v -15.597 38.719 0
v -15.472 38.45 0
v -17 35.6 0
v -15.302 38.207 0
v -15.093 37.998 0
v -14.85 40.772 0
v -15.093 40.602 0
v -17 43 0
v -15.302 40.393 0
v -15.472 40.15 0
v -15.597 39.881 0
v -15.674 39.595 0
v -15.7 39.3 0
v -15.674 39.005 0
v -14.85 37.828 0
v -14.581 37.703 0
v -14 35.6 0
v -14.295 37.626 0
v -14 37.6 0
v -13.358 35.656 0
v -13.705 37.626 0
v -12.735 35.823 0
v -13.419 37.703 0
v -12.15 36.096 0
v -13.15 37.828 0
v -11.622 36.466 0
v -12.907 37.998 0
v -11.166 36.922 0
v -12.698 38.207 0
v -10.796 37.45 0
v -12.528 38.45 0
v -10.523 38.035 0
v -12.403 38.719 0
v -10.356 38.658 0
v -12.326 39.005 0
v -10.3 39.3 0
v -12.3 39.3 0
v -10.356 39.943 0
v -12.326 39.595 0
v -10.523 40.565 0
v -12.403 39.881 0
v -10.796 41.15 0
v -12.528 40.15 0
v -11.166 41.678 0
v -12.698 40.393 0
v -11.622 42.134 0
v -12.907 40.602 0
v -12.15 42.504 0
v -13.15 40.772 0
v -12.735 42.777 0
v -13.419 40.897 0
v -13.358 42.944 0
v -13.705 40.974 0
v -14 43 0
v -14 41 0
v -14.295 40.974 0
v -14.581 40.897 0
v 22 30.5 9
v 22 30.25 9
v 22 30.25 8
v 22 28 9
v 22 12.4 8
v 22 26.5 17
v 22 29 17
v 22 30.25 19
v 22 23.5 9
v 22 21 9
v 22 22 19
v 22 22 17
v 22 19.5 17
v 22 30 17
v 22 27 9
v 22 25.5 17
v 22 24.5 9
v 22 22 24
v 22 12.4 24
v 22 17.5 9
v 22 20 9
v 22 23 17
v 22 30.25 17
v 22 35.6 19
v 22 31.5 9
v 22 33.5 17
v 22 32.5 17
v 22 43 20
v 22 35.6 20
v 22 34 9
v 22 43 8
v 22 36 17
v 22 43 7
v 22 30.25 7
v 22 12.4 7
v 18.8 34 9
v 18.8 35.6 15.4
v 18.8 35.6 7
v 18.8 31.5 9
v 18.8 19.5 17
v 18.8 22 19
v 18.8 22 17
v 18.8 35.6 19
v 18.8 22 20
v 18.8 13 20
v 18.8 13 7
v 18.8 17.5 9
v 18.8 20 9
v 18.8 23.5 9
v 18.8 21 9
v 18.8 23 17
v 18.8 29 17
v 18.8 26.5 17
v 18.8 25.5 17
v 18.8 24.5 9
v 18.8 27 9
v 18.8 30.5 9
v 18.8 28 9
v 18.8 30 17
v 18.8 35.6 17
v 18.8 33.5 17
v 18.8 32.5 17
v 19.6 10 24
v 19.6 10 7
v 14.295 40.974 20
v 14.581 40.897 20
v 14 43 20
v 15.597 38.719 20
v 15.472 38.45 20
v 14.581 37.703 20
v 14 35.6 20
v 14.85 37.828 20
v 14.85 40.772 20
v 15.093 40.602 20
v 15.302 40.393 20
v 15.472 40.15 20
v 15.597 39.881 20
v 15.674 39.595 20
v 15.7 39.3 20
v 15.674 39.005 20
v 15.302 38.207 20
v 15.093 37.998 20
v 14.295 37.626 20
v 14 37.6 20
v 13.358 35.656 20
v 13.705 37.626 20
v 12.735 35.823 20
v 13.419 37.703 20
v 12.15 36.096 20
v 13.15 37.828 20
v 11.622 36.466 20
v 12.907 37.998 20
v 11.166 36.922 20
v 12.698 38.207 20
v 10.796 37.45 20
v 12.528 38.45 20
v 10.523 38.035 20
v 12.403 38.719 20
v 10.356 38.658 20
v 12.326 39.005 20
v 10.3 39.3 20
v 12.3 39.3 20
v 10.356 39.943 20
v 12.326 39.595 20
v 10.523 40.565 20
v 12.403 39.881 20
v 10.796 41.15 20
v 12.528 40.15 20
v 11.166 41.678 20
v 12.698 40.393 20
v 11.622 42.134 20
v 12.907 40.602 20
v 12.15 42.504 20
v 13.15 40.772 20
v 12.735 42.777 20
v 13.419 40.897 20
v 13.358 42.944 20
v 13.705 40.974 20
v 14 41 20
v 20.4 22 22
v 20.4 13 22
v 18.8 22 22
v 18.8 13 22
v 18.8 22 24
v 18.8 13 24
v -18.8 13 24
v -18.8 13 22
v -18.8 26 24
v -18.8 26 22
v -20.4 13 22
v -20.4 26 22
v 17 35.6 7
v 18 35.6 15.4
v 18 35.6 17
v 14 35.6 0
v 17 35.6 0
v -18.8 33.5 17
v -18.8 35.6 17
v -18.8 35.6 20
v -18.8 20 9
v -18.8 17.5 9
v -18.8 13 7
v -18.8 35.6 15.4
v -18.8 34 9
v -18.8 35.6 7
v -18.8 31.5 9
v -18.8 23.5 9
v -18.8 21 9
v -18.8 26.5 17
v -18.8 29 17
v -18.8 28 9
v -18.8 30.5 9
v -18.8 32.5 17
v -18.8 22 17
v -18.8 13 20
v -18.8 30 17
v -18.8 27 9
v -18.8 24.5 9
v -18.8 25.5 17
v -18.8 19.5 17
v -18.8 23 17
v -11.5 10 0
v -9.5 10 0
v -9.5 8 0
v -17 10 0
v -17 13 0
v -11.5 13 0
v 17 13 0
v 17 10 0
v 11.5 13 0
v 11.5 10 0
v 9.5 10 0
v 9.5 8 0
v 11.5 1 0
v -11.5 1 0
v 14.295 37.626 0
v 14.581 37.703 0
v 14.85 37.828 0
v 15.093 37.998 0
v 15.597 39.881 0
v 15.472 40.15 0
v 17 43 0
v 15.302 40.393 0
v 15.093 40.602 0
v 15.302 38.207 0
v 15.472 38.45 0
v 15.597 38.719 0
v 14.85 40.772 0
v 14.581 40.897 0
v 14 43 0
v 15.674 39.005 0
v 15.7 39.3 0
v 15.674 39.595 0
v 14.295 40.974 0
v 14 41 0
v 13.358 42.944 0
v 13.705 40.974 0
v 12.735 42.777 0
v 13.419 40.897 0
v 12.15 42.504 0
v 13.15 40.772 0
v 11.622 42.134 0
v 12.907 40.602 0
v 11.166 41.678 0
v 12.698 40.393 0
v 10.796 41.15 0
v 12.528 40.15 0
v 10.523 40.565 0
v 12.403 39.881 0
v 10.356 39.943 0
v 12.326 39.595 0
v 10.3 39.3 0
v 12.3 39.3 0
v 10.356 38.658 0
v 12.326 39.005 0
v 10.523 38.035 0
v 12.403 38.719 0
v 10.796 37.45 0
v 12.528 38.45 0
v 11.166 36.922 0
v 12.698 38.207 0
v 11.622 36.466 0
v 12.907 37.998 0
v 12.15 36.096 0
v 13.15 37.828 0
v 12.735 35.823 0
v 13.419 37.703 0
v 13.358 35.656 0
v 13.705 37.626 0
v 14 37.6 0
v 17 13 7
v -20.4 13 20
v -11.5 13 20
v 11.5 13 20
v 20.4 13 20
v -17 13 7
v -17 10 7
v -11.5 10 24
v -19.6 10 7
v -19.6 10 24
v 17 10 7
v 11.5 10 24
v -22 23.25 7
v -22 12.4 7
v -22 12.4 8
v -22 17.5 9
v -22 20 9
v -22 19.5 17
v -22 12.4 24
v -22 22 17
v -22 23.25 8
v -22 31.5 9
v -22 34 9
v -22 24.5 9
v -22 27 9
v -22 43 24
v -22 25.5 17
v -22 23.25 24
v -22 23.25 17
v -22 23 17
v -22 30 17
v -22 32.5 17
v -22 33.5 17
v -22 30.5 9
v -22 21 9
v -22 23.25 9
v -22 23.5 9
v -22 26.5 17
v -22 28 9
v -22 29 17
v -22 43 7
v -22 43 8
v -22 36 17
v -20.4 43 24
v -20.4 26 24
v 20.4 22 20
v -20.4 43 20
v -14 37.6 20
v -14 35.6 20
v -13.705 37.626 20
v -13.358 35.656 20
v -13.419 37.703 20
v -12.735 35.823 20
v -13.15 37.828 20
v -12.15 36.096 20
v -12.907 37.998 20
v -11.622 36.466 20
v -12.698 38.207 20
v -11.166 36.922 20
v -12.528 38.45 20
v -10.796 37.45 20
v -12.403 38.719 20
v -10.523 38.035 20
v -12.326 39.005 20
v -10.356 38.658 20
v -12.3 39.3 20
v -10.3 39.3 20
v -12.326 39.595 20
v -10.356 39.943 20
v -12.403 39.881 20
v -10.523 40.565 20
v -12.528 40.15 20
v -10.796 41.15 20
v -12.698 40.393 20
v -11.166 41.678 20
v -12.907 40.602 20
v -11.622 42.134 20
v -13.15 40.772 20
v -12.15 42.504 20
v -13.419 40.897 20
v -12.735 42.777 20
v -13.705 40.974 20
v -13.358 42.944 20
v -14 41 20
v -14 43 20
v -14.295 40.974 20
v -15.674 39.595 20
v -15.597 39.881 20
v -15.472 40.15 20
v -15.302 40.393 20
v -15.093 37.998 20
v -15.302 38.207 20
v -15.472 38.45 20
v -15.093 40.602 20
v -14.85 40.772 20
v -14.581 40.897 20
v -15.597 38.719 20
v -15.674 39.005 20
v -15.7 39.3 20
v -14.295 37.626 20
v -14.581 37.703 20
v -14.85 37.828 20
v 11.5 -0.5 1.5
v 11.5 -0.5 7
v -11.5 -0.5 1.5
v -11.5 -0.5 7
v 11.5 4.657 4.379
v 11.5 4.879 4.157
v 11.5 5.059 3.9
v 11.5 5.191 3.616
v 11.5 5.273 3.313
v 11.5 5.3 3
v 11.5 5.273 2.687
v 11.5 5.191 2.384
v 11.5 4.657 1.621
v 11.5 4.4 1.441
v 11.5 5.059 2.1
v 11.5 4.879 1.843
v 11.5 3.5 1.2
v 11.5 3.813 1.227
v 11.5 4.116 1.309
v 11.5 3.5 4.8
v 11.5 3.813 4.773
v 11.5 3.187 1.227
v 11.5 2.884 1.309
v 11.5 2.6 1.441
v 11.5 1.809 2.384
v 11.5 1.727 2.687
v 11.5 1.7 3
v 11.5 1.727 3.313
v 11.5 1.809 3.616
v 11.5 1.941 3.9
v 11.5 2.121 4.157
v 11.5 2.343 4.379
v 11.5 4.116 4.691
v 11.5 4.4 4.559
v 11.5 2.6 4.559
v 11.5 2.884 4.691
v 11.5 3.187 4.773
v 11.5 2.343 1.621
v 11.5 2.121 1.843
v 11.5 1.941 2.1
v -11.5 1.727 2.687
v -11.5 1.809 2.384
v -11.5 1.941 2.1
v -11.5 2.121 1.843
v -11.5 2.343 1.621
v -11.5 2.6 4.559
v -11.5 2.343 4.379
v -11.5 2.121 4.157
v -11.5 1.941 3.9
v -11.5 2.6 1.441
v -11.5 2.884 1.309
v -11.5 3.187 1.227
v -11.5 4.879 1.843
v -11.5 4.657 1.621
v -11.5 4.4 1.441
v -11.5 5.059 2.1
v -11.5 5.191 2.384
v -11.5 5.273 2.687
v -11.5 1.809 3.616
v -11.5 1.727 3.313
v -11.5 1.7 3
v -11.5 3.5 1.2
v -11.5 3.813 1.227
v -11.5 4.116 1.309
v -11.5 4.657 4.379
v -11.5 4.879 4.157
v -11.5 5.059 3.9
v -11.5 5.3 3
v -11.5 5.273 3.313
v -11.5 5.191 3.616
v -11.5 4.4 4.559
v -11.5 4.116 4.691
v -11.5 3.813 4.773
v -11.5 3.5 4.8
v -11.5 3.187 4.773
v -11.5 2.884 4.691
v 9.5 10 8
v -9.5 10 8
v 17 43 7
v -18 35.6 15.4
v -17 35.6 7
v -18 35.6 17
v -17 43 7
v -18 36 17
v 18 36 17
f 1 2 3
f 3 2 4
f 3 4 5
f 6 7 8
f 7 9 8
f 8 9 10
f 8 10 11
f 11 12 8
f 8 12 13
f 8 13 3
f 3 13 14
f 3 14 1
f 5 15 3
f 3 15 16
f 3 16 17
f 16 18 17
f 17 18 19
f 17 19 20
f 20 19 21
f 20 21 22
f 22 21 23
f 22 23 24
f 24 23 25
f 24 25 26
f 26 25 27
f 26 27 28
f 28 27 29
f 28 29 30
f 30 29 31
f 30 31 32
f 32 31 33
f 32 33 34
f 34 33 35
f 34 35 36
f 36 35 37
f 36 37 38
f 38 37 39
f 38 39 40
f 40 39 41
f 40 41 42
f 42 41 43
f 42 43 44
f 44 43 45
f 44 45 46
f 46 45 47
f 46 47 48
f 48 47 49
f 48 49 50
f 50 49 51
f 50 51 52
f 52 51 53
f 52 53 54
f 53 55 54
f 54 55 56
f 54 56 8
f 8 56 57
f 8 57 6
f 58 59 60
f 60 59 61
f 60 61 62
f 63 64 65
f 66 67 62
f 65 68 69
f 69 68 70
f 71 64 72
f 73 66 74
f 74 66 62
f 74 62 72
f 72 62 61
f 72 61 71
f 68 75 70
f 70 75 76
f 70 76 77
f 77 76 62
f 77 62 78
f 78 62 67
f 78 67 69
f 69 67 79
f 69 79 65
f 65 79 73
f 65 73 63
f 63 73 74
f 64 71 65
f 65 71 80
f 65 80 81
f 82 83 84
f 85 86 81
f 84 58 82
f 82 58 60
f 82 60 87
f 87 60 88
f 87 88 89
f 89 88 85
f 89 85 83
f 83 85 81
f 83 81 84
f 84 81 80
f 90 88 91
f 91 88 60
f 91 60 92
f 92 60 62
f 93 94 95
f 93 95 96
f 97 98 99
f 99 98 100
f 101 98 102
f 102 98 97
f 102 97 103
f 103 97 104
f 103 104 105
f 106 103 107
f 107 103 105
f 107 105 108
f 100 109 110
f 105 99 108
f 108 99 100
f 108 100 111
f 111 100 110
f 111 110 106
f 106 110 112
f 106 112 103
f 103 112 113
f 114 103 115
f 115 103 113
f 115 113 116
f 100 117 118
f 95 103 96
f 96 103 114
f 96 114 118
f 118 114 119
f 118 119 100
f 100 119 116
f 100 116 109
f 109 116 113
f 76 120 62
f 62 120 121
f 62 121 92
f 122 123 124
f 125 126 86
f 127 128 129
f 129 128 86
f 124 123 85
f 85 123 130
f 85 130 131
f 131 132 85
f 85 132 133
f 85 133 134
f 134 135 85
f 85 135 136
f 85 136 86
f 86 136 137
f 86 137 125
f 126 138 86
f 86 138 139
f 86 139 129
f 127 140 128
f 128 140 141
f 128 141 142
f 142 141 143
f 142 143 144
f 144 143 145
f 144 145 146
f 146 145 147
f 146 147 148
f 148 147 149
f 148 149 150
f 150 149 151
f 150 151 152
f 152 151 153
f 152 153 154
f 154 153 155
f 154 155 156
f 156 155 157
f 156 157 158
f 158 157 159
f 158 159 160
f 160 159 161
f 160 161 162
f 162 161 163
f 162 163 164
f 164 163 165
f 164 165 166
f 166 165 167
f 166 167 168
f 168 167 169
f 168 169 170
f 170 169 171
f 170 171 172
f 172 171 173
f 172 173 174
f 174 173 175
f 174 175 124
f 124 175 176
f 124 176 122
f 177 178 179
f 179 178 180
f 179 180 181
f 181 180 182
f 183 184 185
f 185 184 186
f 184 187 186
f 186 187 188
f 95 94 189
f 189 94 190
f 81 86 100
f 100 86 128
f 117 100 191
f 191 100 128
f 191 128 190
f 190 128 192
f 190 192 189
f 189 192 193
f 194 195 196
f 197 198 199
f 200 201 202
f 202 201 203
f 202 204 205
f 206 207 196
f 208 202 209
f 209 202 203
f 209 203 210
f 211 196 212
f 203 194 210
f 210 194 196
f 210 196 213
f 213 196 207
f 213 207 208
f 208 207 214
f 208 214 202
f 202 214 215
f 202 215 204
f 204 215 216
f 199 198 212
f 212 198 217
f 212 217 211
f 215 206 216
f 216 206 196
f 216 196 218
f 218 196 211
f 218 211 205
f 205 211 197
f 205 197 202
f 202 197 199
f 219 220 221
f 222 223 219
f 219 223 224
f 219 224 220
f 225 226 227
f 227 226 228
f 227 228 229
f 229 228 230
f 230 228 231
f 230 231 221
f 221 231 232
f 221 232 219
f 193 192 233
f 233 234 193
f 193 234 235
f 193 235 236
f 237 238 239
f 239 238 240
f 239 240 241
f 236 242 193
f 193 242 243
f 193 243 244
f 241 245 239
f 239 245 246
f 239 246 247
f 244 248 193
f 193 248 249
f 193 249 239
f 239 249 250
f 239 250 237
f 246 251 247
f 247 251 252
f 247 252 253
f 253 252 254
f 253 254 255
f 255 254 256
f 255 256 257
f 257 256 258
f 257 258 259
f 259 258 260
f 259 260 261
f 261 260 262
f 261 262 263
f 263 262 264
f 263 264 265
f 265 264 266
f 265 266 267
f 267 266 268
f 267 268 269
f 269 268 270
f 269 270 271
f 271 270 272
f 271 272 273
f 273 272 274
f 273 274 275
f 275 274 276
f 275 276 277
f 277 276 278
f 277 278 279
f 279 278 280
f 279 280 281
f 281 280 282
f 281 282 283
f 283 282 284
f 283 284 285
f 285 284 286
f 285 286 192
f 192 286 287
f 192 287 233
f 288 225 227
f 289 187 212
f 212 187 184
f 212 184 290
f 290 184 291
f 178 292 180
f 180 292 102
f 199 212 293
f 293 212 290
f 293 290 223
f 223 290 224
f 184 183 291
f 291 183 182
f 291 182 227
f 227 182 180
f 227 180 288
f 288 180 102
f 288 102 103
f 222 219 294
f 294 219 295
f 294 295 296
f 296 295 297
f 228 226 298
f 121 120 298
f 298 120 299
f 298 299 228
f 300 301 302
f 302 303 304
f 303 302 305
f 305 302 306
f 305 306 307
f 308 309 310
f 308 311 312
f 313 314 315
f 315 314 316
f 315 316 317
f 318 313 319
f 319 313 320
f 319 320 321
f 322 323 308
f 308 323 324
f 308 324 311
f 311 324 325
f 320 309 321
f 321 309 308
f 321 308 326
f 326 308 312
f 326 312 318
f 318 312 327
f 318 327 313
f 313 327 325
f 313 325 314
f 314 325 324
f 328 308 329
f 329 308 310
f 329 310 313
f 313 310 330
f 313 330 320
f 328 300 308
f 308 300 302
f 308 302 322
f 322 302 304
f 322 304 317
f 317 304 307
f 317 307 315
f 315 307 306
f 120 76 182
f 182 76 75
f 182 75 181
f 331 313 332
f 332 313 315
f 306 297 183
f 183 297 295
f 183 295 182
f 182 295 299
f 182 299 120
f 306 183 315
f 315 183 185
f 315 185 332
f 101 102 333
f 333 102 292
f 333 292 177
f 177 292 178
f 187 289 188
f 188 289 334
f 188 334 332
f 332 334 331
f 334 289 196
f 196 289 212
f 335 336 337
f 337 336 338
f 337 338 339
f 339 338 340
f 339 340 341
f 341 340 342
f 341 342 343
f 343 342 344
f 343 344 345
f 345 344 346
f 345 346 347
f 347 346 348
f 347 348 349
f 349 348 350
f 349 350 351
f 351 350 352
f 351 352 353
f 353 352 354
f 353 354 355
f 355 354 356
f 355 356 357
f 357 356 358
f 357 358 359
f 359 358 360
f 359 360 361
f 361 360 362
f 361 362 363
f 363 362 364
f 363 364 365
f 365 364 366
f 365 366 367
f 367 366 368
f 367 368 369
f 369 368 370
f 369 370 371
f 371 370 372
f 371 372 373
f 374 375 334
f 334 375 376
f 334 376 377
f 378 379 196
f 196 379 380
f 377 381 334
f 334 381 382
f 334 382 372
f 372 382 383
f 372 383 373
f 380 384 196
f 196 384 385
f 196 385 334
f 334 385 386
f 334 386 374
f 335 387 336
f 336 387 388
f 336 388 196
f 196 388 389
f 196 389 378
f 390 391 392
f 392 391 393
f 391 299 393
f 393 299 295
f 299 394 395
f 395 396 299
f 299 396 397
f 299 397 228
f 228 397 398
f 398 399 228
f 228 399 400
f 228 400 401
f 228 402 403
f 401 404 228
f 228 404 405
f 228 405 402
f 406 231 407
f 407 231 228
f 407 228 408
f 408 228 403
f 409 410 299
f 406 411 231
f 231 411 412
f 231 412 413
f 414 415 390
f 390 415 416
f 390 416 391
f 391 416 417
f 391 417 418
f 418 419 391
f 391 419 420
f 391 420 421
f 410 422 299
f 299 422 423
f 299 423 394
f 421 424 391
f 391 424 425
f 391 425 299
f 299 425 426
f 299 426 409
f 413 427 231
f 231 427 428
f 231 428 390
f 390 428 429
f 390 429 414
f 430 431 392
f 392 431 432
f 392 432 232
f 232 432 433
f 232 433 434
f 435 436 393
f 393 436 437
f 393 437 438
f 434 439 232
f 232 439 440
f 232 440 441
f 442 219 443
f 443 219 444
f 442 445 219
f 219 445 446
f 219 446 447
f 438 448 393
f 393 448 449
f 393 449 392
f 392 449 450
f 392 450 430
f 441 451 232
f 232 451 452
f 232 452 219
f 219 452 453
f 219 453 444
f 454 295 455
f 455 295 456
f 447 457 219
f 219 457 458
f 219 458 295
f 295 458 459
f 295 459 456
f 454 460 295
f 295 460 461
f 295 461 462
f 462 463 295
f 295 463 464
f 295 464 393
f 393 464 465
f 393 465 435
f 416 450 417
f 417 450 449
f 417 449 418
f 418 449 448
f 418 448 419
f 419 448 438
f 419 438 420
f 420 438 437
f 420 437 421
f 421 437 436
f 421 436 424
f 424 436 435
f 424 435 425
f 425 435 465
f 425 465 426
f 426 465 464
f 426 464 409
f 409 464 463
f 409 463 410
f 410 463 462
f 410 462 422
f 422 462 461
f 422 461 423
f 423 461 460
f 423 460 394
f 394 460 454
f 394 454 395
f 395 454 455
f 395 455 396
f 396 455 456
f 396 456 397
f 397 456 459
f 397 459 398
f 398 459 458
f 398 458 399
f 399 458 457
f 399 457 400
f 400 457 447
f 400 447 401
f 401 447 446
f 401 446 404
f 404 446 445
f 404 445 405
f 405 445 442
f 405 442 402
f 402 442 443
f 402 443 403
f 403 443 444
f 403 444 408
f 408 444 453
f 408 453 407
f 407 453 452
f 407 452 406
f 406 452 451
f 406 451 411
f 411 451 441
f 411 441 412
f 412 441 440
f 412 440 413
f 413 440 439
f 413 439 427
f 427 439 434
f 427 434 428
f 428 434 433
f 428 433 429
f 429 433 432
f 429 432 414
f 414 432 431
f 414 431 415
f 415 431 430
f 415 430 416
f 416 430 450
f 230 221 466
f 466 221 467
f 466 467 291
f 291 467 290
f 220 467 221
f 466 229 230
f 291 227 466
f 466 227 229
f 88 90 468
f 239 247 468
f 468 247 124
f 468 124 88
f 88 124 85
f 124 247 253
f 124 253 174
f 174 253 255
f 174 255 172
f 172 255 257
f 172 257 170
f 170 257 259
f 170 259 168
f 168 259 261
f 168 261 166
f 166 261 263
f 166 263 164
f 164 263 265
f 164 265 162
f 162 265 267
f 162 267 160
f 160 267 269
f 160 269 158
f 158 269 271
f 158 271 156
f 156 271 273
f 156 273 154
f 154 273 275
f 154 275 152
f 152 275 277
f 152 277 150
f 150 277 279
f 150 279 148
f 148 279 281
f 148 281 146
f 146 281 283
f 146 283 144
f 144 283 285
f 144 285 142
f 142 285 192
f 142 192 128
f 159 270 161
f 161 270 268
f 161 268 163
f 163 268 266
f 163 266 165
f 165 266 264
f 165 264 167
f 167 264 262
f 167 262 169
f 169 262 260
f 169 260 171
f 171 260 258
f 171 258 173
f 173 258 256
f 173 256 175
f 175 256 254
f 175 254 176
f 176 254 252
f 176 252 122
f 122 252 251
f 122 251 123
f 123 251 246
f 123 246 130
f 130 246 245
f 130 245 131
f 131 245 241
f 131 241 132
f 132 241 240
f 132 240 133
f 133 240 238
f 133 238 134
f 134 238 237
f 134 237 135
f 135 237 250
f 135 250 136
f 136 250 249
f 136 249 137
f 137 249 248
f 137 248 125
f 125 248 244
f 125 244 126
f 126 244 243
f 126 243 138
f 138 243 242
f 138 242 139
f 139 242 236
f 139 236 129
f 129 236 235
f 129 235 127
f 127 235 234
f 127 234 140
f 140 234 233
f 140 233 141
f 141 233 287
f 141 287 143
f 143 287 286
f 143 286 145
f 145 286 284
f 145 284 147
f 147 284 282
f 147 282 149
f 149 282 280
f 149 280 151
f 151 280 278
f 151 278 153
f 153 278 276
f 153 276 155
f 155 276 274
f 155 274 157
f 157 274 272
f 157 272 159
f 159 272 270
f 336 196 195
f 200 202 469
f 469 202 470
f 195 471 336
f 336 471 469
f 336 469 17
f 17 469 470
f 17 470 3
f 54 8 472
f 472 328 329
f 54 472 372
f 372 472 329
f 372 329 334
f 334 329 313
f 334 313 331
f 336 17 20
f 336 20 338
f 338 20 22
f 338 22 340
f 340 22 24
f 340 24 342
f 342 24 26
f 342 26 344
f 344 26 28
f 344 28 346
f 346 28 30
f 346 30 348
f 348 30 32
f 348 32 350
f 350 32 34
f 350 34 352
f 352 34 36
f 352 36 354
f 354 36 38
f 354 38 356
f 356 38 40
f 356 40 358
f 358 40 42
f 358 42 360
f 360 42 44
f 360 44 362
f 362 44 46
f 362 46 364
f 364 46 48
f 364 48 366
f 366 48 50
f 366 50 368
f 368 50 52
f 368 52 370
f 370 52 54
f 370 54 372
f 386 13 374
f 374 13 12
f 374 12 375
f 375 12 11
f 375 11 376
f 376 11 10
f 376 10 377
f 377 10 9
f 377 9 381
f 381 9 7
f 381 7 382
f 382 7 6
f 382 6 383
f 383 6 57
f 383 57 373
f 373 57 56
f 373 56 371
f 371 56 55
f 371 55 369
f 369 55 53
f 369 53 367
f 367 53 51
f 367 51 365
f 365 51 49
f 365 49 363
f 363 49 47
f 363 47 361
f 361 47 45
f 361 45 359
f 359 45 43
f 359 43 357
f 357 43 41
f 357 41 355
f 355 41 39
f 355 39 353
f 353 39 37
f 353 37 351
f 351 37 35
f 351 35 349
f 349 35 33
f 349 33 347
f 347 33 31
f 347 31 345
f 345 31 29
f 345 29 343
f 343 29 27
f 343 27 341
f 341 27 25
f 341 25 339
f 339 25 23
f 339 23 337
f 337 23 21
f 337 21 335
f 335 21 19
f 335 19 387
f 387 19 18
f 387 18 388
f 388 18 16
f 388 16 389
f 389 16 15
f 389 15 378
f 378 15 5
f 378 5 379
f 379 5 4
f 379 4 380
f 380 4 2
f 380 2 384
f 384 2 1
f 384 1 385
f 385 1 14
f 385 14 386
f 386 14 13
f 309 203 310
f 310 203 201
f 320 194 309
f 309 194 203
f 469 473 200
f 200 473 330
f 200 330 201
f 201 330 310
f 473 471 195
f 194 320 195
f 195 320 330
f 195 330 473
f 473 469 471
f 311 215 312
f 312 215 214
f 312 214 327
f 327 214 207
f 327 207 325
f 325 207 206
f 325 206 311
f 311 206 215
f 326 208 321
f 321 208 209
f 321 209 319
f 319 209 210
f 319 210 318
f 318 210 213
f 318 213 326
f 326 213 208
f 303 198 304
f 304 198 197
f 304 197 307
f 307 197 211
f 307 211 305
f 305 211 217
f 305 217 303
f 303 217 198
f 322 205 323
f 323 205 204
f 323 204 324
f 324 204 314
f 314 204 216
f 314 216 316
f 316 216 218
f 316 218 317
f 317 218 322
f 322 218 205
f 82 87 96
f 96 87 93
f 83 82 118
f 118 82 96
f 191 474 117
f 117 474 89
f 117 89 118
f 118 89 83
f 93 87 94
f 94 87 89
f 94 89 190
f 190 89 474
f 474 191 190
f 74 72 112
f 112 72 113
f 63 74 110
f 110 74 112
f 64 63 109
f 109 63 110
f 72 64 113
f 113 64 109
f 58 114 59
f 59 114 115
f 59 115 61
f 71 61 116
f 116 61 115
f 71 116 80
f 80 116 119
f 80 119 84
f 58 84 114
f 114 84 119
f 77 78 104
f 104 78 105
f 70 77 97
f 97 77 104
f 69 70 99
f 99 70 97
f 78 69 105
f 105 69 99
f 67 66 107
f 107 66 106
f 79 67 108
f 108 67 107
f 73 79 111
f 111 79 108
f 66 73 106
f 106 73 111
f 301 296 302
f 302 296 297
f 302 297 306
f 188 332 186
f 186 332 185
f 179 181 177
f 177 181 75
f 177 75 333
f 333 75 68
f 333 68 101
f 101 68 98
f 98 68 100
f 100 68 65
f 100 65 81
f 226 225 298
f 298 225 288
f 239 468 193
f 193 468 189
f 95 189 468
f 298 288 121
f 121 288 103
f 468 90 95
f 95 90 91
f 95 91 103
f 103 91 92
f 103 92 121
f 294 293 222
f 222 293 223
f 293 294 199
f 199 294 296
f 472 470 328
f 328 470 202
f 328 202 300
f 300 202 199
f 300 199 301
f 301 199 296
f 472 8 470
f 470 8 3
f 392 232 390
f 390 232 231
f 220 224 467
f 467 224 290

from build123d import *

# Parameters (mm, degrees)
SKETCH_1_W           = 44
SKETCH_1_H           = 34
EXTRUDE_1_DEPTH      = 24
CUT_EXTRUDE_1_DEPTH  = 31
SKETCH_5_W           = 23
SKETCH_5_H           = 10.5
EXTRUDE_4_DEPTH      = 1
EXTRUDE_5_DEPTH      = 23
SKETCH_7_R           = 1.8
CUT_EXTRUDE_2_DEPTH  = 23
CUT_EXTRUDE_4_DEPTH  = 19
CHAMFER_2_SIZE       = 2
CHAMFER_2_SIZE2      = 3
SKETCH_11_R          = 1.7
EXTRUDE_6_DEPTH      = 20
CUT_EXTRUDE_7_DEPTH  = 4
CHAMFER_3_SIZE       = 2.4
SKETCH_14_W          = 40.8
SKETCH_14_H          = 4
CUT_EXTRUDE_8_DEPTH  = 18
SKETCH_15_W          = 44
SKETCH_15_H          = 1
CUT_EXTRUDE_9_DEPTH  = 24
SKETCH_16_W          = 3.2
SKETCH_16_H          = 13.6
CUT_EXTRUDE_10_DEPTH = 5
SKETCH_17_W          = 1.6
SKETCH_17_H          = 4
CUT_EXTRUDE_11_DEPTH = 7.4
CUT_EXTRUDE_12_DEPTH = 7
SKETCH_19_W          = 1
SKETCH_19_H          = 10.5
CUT_EXTRUDE_13_DEPTH = 23
CHAMFER_4_SIZE       = 1.5
CHAMFER_5_SIZE       = 3
CHAMFER_5_SIZE2      = 2


with BuildPart() as part:
    # Эскиз1 → Бобышка-Вытянуть1 (new body)
    with BuildSketch(Plane.XY):
        with Locations((0, 27)):
            Rectangle(SKETCH_1_W, SKETCH_1_H)
    extrude(amount=EXTRUDE_1_DEPTH)

    # Эскиз2 → Вырез-Вытянуть1 (cut)
    with BuildSketch(Plane(origin=(0, 44, 0), x_dir=(1, 0, 0), z_dir=(0, 1, 0))):
        Polygon((-18.8, 0), (18.8, 0), (18.8, -20), (20.4, -20), (20.4, -22), (18.8, -22), (18.8, -24), (-18.8, -24), (-18.8, -22), (-20.4, -22), (-20.4, -20), (-18.8, -20), align=None)
    extrude(amount=-CUT_EXTRUDE_1_DEPTH, mode=Mode.SUBTRACT)



with BuildPart() as body_2:
    # Эскиз5 → Бобышка-Вытянуть4 (new body)
    with BuildSketch(Plane(origin=(0, 0, 0), x_dir=(-1, 0, 0), z_dir=(0, 0, -1))):
        with Locations((0, 4.75)):
            Rectangle(SKETCH_5_W, SKETCH_5_H)
    extrude(amount=EXTRUDE_4_DEPTH)


with BuildPart() as part_1:
    add(part.part)

    add(body_2.part)  # Бобышка-Вытянуть5 merges body 2
    # Эскиз6 → Бобышка-Вытянуть5 (add)
    with BuildSketch(Plane(origin=(11.5, 0, 0), x_dir=(0, 0, -1), z_dir=(1, 0, 0))):
        Polygon((0, -0.5), (-7, -0.5), (-24, 10), (0, 10), align=None)
    extrude(amount=-EXTRUDE_5_DEPTH)

    # Эскиз7 → Вырез-Вытянуть2 (cut)
    with BuildSketch(Plane.ZY.offset(11.5)):
        with Locations(Location((3, 3.5, 0), (0, 0, 270))):
            Circle(SKETCH_7_R)
    extrude(amount=-CUT_EXTRUDE_2_DEPTH, mode=Mode.SUBTRACT)

    # Эскиз8 → Вырез-Вытянуть4 (cut)
    with BuildSketch(Plane.ZY.offset(9.5)):
        Polygon((0, 8), (20, 13), (0, 13), align=None)
    extrude(amount=-CUT_EXTRUDE_4_DEPTH, mode=Mode.SUBTRACT)

    # Фаска2
    chamfer_2_edges = [part_1.edges().sort_by_distance(p)[0] for p in [
        (9.5, 13, 10),
    ]]
    chamfer_2_side = [part_1.faces().sort_by_distance(p)[0] for p in [
        (-18.32664601, 13, 10),
    ]]
    chamfer(chamfer_2_edges, length=CHAMFER_2_SIZE, length2=CHAMFER_2_SIZE2, reference=chamfer_2_side[0])

    # Эскиз11 → Бобышка-Вытянуть6 (add)
    # profile 1 of 2: a face of its own
    with BuildSketch(Plane(origin=(0, 0, 0), x_dir=(-1, 0, 0), z_dir=(0, 0, -1))):
        with BuildLine():
            Line((-14, 43), (-18.8, 43))
            Line((-18.8, 43), (-18.8, 35.6))
            Line((-18.8, 35.6), (-14, 35.6))
            ThreePointArc((-14, 35.6), (-10.3, 39.3), (-14, 43))
        make_face()
        with Locations((-14, 39.3)):
            Circle(SKETCH_11_R, mode=Mode.SUBTRACT)
    # profile 2 of 2: a face of its own
    with BuildSketch(Plane(origin=(0, 0, 0), x_dir=(-1, 0, 0), z_dir=(0, 0, -1))):
        with BuildLine():
            Line((18.8, 35.6), (14, 35.6))
            ThreePointArc((14, 35.6), (10.3, 39.3), (14, 43))
            Line((14, 43), (18.8, 43))
            Line((18.8, 43), (18.8, 35.6))
        make_face()
        with Locations((14, 39.3)):
            Circle(SKETCH_11_R, mode=Mode.SUBTRACT)
    extrude(amount=-EXTRUDE_6_DEPTH)

    # Эскиз13 → Вырез-Вытянуть7 (cut)
    with BuildSketch(Plane.ZY.offset(22)):
        Polygon((9, 34), (17, 36), (17, 33.5), (9, 31.5), align=None)
        Polygon((9, 30.5), (17, 32.5), (17, 30), (9, 28), align=None)
        Polygon((9, 27), (17, 29), (17, 26.5), (9, 24.5), align=None)
        Polygon((9, 23.5), (17, 25.5), (17, 23), (9, 21), align=None)
        Polygon((9, 20), (17, 22), (17, 19.5), (9, 17.5), align=None)
    cut_extrude_7 = extrude(amount=-CUT_EXTRUDE_7_DEPTH, mode=Mode.SUBTRACT)

    # Зеркальное отражение1: Вырез-Вытянуть7 across plane
    add(cut_extrude_7.mirror(Plane(origin=(0, 0, 0), x_dir=(0, 0, 1), z_dir=(1, 0, 0))), mode=Mode.SUBTRACT)

    # Фаска3
    chamfer_3_edges = [part_1.edges().sort_by_distance(p)[0] for p in [
        (22, 10, 12),
        (-22, 10, 12),
    ]]
    chamfer(chamfer_3_edges, length=CHAMFER_3_SIZE)

    # Эскиз14 → Вырез-Вытянуть8 (cut)
    with BuildSketch(Plane(origin=(0, 44, 0), x_dir=(1, 0, 0), z_dir=(0, 1, 0))):
        with Locations((0, -22)):
            Rectangle(SKETCH_14_W, SKETCH_14_H)
    extrude(amount=-CUT_EXTRUDE_8_DEPTH, mode=Mode.SUBTRACT)

    # Эскиз15 → Вырез-Вытянуть9 (cut)
    with BuildSketch(Plane(origin=(0, 0, 0), x_dir=(-1, 0, 0), z_dir=(0, 0, -1))):
        with Locations((0, 43.5)):
            Rectangle(SKETCH_15_W, SKETCH_15_H)
    extrude(amount=-CUT_EXTRUDE_9_DEPTH, mode=Mode.SUBTRACT)

    # Эскиз16 → Вырез-Вытянуть10 (cut)
    with BuildSketch(Plane.XY.offset(24)):
        with Locations((20.4, 28.8)):
            Rectangle(SKETCH_16_W, SKETCH_16_H)
    extrude(amount=-CUT_EXTRUDE_10_DEPTH, mode=Mode.SUBTRACT)

    # Эскиз17 → Вырез-Вытянуть11 (cut)
    with BuildSketch(Plane(origin=(0, 43, 0), x_dir=(1, 0, 0), z_dir=(0, 1, 0))):
        with Locations((21.2, -22)):
            Rectangle(SKETCH_17_W, SKETCH_17_H)
    extrude(amount=-CUT_EXTRUDE_11_DEPTH, mode=Mode.SUBTRACT)

    # Эскиз18 → Вырез-Вытянуть12 (cut)
    with BuildSketch(Plane(origin=(0, 0, 0), x_dir=(-1, 0, 0), z_dir=(0, 0, -1))):
        Polygon((-22, 43), (-17, 43), (-17, 10), (-19.6, 10), (-22, 12.4), align=None)
        Polygon((22, 12.4), (19.6, 10), (17, 10), (17, 43), (22, 43), align=None)
    extrude(amount=-CUT_EXTRUDE_12_DEPTH, mode=Mode.SUBTRACT)

    # Эскиз19 → Вырез-Вытянуть13 (cut)
    with BuildSketch(Plane.ZY.offset(11.5)):
        with Locations((-0.5, 4.75)):
            Rectangle(SKETCH_19_W, SKETCH_19_H)
    extrude(amount=-CUT_EXTRUDE_13_DEPTH, mode=Mode.SUBTRACT)

    # Фаска4
    chamfer_4_edges = [part_1.edges().sort_by_distance(p)[0] for p in [
        (0, -0.5, 0),
    ]]
    chamfer(chamfer_4_edges, length=CHAMFER_4_SIZE)

    # Фаска5
    chamfer_5_edges = [part_1.edges().sort_by_distance(p)[0] for p in [
        (-9.5, 13, 10),
    ]]
    chamfer_5_side = [part_1.faces().sort_by_distance(p)[0] for p in [
        (-9.5, 11.333333333, 6.666666667),
    ]]
    chamfer(chamfer_5_edges, length=CHAMFER_5_SIZE, length2=CHAMFER_5_SIZE2, reference=chamfer_5_side[0])


solid = part_1.part
